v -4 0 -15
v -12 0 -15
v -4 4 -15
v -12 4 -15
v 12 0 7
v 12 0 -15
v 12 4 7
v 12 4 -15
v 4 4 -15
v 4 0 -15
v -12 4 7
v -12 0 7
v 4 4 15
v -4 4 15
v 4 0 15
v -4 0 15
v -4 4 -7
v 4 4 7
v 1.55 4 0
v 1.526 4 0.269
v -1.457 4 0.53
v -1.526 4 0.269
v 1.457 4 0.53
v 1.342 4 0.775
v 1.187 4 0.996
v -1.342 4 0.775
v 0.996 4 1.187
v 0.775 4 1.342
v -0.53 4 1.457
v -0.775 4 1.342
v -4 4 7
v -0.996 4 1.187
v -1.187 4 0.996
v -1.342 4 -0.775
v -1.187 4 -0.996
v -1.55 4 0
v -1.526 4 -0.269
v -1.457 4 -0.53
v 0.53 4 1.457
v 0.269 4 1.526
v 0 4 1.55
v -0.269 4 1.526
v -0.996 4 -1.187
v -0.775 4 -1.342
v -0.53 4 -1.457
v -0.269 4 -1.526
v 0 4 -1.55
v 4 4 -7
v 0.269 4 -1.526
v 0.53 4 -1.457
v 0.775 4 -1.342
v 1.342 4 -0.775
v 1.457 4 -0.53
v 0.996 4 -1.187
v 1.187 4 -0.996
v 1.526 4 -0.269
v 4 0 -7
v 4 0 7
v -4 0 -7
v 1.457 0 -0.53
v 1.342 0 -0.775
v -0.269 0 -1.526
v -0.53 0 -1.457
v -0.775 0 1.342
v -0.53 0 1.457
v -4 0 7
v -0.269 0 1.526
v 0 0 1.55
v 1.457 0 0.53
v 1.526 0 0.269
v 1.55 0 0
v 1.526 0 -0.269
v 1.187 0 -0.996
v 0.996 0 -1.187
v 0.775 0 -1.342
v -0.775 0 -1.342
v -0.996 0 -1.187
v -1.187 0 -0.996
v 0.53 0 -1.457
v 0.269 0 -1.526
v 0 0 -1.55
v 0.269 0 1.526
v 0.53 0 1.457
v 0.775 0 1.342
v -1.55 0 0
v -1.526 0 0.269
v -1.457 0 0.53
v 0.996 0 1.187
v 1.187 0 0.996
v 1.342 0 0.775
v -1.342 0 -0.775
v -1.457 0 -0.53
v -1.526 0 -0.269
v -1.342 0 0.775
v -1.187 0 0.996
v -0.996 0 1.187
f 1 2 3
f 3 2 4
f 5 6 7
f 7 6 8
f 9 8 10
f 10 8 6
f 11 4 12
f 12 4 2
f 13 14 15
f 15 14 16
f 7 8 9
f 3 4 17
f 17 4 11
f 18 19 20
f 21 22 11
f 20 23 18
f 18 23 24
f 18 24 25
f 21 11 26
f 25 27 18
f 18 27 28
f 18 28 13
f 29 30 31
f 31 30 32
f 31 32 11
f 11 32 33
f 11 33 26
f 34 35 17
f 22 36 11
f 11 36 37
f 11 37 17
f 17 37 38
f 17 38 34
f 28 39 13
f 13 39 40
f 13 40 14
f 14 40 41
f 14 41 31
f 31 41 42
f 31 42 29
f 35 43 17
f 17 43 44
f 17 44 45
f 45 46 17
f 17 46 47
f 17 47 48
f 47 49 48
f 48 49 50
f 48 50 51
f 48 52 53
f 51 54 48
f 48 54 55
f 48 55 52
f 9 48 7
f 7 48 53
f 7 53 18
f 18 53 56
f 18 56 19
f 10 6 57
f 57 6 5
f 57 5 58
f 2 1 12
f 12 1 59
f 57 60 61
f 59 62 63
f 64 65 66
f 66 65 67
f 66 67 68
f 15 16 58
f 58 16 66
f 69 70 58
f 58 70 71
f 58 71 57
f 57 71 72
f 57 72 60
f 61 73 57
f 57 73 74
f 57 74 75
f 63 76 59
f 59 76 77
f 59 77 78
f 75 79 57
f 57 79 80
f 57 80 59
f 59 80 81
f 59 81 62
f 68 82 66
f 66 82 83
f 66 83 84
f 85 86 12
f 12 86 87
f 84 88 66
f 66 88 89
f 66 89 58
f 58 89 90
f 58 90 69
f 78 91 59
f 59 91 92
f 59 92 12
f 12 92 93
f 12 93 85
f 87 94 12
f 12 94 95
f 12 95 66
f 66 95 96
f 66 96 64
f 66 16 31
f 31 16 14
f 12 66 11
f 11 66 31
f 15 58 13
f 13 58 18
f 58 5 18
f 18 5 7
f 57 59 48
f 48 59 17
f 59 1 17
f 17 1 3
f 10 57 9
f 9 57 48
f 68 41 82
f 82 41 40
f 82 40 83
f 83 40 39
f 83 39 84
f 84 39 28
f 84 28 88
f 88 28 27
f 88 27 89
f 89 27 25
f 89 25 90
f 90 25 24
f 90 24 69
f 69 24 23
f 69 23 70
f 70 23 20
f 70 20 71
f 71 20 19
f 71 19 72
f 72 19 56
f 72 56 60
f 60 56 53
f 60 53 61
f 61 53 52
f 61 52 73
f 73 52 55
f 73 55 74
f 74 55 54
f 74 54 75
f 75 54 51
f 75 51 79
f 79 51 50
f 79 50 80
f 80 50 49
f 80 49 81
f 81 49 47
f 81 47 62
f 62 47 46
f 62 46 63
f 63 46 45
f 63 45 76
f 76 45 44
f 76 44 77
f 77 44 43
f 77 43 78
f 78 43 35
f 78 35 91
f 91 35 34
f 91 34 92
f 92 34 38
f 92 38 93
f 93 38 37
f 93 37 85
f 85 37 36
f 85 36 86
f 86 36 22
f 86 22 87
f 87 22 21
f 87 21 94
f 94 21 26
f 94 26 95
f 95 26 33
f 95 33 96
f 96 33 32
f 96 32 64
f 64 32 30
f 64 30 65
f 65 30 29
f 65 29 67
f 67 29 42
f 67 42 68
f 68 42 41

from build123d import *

# Parameters (mm, degrees)
SKETCH_1_R      = 1.55
EXTRUDE_1_DEPTH = 4


with BuildPart() as part:
    # 草圖1 → 填料-伸長1 (new body)
    with BuildSketch(Plane(origin=(0, 4, 0), x_dir=(1, 0, 0), z_dir=(0, 1, 0))):
        Polygon((-4, 7), (-4, 15), (-12, 15), (-12, -7), (-4, -7), (-4, -15), (4, -15), (4, -7), (12, -7), (12, 15), (4, 15), (4, 7), align=None)
        Circle(SKETCH_1_R, mode=Mode.SUBTRACT)
    extrude(amount=-EXTRUDE_1_DEPTH)


solid = part.part
